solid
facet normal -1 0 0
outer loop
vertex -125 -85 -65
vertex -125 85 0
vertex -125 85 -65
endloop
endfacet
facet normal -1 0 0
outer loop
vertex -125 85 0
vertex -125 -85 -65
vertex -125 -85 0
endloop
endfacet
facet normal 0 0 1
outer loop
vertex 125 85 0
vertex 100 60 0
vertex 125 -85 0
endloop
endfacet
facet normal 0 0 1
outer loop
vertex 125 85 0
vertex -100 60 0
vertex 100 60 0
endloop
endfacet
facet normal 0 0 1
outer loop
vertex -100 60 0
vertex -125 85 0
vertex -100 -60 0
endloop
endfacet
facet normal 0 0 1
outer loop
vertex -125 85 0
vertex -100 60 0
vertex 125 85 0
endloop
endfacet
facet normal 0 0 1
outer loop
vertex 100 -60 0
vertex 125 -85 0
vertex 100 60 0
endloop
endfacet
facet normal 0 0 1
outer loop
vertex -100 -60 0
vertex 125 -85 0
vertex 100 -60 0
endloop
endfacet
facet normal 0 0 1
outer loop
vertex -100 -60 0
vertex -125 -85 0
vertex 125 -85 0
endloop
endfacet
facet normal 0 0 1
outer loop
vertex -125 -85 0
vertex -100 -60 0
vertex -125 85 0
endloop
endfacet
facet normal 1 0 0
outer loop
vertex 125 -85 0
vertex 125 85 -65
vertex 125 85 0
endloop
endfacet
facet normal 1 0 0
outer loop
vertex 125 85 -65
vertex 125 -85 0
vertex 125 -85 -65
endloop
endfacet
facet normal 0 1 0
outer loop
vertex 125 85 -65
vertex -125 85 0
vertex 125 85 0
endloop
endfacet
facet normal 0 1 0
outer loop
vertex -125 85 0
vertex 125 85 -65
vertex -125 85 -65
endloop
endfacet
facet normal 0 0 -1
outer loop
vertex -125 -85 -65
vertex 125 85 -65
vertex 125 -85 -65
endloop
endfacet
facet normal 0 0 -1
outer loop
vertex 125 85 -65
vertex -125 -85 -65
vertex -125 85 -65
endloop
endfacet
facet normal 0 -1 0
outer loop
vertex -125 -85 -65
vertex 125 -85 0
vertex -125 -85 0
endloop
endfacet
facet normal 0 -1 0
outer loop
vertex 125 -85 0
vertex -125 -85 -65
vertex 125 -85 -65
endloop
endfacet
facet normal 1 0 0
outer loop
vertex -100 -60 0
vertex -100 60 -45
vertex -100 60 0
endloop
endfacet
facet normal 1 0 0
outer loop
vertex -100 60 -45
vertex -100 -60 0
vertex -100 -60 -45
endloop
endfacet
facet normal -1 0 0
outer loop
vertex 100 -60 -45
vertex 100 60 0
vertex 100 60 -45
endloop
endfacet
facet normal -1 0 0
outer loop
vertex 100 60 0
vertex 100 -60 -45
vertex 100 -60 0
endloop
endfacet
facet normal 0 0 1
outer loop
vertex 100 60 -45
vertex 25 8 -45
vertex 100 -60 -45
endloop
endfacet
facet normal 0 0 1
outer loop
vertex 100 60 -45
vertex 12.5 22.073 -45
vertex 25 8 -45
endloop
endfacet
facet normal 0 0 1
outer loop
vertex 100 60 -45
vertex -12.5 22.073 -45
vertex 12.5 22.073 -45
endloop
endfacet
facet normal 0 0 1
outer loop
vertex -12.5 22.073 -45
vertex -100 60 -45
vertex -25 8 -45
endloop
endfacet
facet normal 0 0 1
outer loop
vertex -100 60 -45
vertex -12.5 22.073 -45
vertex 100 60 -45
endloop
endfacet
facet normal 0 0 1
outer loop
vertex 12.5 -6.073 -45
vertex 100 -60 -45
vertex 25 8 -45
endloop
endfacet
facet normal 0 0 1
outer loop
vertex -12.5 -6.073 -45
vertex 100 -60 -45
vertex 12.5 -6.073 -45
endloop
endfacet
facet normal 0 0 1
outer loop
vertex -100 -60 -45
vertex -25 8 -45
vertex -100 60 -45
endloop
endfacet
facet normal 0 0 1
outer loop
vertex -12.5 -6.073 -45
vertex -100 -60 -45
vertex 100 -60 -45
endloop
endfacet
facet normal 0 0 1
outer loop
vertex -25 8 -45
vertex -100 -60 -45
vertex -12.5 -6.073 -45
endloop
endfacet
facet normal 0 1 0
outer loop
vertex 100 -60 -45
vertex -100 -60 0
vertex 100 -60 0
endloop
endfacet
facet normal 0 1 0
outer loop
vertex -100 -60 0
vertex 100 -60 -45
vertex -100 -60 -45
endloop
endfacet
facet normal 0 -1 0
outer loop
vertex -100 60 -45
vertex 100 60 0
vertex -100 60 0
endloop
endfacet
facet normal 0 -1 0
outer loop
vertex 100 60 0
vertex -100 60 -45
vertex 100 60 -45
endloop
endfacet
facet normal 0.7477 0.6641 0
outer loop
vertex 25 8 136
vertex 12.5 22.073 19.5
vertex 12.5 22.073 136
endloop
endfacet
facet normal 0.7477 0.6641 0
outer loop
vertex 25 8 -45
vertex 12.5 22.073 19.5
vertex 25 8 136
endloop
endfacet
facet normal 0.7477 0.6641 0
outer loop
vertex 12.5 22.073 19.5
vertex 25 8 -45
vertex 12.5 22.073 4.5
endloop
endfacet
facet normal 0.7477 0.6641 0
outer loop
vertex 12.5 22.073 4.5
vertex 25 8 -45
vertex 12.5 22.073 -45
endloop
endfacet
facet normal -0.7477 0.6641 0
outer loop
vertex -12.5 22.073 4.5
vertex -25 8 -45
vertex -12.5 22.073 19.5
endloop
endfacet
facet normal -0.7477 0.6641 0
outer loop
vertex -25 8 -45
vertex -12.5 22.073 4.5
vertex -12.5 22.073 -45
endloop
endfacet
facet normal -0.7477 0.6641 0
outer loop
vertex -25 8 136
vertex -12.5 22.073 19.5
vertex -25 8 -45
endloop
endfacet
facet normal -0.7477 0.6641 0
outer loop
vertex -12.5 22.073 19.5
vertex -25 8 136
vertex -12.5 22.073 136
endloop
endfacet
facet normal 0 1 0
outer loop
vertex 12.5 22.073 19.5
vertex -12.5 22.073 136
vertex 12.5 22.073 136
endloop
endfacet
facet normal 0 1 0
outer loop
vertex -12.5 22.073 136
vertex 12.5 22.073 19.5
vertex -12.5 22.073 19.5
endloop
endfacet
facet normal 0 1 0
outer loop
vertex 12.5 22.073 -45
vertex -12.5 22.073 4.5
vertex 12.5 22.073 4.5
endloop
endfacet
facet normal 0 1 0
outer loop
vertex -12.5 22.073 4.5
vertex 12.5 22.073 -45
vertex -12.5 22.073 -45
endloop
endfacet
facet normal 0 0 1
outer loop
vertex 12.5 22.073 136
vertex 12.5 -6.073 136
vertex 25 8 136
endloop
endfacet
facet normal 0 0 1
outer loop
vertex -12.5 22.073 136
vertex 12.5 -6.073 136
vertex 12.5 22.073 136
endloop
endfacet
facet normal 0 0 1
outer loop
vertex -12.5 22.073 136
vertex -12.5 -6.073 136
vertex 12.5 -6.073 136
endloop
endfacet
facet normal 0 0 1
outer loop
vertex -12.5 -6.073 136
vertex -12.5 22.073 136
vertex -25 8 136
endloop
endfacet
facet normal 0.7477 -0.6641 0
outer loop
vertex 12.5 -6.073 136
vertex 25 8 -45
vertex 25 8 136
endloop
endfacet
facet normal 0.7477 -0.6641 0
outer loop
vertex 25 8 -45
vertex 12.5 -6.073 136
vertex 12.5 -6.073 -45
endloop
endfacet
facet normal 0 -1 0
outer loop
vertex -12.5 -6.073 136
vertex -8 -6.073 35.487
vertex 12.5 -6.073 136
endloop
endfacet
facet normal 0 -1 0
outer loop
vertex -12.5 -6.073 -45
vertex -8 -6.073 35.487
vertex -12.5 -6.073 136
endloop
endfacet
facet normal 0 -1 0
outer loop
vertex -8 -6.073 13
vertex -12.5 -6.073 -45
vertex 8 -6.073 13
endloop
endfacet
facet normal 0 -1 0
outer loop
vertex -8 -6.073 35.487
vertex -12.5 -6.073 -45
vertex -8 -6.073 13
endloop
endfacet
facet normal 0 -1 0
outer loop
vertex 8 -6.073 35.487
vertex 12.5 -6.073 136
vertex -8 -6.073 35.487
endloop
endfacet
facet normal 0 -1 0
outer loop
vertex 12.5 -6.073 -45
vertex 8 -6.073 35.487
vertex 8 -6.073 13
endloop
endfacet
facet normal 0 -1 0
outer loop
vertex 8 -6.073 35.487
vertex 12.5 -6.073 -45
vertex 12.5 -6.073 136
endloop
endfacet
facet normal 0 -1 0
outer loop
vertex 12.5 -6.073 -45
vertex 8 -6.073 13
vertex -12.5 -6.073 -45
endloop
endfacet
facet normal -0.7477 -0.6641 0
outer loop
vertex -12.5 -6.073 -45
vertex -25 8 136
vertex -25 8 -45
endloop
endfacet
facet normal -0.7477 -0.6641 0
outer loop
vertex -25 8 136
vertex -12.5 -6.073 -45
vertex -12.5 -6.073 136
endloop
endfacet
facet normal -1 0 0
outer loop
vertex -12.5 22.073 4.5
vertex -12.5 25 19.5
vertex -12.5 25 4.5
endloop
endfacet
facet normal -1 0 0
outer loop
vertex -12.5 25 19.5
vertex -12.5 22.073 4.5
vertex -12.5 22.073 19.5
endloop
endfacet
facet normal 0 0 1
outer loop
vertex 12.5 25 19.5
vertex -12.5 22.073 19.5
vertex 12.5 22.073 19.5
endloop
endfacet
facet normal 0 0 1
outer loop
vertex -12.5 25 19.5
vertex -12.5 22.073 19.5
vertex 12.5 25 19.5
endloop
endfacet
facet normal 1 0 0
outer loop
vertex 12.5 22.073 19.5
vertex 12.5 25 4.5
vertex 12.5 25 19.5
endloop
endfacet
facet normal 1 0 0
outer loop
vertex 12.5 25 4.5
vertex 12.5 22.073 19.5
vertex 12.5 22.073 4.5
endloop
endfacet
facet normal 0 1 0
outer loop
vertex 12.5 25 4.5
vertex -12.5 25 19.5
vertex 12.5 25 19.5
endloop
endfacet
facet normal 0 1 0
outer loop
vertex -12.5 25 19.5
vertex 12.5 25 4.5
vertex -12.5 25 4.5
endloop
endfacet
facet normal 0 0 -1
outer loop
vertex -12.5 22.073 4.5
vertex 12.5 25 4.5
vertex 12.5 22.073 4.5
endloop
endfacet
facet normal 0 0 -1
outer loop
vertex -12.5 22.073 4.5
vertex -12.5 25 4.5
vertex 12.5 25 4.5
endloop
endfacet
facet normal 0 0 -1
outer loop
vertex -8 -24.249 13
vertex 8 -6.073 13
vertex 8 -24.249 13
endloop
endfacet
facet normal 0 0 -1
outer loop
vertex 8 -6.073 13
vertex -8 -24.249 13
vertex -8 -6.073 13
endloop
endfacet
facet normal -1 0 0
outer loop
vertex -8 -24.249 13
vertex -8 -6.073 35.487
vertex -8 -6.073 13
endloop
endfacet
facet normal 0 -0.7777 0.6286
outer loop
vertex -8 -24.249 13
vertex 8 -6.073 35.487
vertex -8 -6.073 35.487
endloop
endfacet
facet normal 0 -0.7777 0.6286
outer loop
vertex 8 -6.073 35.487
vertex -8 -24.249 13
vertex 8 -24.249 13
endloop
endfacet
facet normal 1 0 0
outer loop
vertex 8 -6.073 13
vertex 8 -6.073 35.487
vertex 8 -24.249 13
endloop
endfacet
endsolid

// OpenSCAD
module new_object() {
	translate ([0, 0, -1])
		color("orange") import("ventriloquist_handle_vr_graphic (REV-02).stl", convexity = 4);
	color("orange") import("ventriloquist_hmd_vr_graphic (REV-02).stl", convexity = 4);
}
new_object();

module thor() {
	union() {
		difference(){
		color("orange")
		translate([0, 0, -65/2])
			cube([250,170,65], center=true);
		color("blue")
		translate([0, 0, -20])
			cube([200, 120, 50], center=true);
			}
	handle();
	}
}
	
!thor();

module handle() {
	union() {
		translate([0,8,-50])
			scale([1,.65,1])
				cylinder(r=25, h=186, $fn=6);
		translate([0,20,12])
			cube([25,10,15], center=true);
		scale([1, 1.4,1])
		translate([8,0,23])
			rotate([0, 270, 0])
				cylinder(r=20, h=16, $fn=3);
	
	
	}
}
